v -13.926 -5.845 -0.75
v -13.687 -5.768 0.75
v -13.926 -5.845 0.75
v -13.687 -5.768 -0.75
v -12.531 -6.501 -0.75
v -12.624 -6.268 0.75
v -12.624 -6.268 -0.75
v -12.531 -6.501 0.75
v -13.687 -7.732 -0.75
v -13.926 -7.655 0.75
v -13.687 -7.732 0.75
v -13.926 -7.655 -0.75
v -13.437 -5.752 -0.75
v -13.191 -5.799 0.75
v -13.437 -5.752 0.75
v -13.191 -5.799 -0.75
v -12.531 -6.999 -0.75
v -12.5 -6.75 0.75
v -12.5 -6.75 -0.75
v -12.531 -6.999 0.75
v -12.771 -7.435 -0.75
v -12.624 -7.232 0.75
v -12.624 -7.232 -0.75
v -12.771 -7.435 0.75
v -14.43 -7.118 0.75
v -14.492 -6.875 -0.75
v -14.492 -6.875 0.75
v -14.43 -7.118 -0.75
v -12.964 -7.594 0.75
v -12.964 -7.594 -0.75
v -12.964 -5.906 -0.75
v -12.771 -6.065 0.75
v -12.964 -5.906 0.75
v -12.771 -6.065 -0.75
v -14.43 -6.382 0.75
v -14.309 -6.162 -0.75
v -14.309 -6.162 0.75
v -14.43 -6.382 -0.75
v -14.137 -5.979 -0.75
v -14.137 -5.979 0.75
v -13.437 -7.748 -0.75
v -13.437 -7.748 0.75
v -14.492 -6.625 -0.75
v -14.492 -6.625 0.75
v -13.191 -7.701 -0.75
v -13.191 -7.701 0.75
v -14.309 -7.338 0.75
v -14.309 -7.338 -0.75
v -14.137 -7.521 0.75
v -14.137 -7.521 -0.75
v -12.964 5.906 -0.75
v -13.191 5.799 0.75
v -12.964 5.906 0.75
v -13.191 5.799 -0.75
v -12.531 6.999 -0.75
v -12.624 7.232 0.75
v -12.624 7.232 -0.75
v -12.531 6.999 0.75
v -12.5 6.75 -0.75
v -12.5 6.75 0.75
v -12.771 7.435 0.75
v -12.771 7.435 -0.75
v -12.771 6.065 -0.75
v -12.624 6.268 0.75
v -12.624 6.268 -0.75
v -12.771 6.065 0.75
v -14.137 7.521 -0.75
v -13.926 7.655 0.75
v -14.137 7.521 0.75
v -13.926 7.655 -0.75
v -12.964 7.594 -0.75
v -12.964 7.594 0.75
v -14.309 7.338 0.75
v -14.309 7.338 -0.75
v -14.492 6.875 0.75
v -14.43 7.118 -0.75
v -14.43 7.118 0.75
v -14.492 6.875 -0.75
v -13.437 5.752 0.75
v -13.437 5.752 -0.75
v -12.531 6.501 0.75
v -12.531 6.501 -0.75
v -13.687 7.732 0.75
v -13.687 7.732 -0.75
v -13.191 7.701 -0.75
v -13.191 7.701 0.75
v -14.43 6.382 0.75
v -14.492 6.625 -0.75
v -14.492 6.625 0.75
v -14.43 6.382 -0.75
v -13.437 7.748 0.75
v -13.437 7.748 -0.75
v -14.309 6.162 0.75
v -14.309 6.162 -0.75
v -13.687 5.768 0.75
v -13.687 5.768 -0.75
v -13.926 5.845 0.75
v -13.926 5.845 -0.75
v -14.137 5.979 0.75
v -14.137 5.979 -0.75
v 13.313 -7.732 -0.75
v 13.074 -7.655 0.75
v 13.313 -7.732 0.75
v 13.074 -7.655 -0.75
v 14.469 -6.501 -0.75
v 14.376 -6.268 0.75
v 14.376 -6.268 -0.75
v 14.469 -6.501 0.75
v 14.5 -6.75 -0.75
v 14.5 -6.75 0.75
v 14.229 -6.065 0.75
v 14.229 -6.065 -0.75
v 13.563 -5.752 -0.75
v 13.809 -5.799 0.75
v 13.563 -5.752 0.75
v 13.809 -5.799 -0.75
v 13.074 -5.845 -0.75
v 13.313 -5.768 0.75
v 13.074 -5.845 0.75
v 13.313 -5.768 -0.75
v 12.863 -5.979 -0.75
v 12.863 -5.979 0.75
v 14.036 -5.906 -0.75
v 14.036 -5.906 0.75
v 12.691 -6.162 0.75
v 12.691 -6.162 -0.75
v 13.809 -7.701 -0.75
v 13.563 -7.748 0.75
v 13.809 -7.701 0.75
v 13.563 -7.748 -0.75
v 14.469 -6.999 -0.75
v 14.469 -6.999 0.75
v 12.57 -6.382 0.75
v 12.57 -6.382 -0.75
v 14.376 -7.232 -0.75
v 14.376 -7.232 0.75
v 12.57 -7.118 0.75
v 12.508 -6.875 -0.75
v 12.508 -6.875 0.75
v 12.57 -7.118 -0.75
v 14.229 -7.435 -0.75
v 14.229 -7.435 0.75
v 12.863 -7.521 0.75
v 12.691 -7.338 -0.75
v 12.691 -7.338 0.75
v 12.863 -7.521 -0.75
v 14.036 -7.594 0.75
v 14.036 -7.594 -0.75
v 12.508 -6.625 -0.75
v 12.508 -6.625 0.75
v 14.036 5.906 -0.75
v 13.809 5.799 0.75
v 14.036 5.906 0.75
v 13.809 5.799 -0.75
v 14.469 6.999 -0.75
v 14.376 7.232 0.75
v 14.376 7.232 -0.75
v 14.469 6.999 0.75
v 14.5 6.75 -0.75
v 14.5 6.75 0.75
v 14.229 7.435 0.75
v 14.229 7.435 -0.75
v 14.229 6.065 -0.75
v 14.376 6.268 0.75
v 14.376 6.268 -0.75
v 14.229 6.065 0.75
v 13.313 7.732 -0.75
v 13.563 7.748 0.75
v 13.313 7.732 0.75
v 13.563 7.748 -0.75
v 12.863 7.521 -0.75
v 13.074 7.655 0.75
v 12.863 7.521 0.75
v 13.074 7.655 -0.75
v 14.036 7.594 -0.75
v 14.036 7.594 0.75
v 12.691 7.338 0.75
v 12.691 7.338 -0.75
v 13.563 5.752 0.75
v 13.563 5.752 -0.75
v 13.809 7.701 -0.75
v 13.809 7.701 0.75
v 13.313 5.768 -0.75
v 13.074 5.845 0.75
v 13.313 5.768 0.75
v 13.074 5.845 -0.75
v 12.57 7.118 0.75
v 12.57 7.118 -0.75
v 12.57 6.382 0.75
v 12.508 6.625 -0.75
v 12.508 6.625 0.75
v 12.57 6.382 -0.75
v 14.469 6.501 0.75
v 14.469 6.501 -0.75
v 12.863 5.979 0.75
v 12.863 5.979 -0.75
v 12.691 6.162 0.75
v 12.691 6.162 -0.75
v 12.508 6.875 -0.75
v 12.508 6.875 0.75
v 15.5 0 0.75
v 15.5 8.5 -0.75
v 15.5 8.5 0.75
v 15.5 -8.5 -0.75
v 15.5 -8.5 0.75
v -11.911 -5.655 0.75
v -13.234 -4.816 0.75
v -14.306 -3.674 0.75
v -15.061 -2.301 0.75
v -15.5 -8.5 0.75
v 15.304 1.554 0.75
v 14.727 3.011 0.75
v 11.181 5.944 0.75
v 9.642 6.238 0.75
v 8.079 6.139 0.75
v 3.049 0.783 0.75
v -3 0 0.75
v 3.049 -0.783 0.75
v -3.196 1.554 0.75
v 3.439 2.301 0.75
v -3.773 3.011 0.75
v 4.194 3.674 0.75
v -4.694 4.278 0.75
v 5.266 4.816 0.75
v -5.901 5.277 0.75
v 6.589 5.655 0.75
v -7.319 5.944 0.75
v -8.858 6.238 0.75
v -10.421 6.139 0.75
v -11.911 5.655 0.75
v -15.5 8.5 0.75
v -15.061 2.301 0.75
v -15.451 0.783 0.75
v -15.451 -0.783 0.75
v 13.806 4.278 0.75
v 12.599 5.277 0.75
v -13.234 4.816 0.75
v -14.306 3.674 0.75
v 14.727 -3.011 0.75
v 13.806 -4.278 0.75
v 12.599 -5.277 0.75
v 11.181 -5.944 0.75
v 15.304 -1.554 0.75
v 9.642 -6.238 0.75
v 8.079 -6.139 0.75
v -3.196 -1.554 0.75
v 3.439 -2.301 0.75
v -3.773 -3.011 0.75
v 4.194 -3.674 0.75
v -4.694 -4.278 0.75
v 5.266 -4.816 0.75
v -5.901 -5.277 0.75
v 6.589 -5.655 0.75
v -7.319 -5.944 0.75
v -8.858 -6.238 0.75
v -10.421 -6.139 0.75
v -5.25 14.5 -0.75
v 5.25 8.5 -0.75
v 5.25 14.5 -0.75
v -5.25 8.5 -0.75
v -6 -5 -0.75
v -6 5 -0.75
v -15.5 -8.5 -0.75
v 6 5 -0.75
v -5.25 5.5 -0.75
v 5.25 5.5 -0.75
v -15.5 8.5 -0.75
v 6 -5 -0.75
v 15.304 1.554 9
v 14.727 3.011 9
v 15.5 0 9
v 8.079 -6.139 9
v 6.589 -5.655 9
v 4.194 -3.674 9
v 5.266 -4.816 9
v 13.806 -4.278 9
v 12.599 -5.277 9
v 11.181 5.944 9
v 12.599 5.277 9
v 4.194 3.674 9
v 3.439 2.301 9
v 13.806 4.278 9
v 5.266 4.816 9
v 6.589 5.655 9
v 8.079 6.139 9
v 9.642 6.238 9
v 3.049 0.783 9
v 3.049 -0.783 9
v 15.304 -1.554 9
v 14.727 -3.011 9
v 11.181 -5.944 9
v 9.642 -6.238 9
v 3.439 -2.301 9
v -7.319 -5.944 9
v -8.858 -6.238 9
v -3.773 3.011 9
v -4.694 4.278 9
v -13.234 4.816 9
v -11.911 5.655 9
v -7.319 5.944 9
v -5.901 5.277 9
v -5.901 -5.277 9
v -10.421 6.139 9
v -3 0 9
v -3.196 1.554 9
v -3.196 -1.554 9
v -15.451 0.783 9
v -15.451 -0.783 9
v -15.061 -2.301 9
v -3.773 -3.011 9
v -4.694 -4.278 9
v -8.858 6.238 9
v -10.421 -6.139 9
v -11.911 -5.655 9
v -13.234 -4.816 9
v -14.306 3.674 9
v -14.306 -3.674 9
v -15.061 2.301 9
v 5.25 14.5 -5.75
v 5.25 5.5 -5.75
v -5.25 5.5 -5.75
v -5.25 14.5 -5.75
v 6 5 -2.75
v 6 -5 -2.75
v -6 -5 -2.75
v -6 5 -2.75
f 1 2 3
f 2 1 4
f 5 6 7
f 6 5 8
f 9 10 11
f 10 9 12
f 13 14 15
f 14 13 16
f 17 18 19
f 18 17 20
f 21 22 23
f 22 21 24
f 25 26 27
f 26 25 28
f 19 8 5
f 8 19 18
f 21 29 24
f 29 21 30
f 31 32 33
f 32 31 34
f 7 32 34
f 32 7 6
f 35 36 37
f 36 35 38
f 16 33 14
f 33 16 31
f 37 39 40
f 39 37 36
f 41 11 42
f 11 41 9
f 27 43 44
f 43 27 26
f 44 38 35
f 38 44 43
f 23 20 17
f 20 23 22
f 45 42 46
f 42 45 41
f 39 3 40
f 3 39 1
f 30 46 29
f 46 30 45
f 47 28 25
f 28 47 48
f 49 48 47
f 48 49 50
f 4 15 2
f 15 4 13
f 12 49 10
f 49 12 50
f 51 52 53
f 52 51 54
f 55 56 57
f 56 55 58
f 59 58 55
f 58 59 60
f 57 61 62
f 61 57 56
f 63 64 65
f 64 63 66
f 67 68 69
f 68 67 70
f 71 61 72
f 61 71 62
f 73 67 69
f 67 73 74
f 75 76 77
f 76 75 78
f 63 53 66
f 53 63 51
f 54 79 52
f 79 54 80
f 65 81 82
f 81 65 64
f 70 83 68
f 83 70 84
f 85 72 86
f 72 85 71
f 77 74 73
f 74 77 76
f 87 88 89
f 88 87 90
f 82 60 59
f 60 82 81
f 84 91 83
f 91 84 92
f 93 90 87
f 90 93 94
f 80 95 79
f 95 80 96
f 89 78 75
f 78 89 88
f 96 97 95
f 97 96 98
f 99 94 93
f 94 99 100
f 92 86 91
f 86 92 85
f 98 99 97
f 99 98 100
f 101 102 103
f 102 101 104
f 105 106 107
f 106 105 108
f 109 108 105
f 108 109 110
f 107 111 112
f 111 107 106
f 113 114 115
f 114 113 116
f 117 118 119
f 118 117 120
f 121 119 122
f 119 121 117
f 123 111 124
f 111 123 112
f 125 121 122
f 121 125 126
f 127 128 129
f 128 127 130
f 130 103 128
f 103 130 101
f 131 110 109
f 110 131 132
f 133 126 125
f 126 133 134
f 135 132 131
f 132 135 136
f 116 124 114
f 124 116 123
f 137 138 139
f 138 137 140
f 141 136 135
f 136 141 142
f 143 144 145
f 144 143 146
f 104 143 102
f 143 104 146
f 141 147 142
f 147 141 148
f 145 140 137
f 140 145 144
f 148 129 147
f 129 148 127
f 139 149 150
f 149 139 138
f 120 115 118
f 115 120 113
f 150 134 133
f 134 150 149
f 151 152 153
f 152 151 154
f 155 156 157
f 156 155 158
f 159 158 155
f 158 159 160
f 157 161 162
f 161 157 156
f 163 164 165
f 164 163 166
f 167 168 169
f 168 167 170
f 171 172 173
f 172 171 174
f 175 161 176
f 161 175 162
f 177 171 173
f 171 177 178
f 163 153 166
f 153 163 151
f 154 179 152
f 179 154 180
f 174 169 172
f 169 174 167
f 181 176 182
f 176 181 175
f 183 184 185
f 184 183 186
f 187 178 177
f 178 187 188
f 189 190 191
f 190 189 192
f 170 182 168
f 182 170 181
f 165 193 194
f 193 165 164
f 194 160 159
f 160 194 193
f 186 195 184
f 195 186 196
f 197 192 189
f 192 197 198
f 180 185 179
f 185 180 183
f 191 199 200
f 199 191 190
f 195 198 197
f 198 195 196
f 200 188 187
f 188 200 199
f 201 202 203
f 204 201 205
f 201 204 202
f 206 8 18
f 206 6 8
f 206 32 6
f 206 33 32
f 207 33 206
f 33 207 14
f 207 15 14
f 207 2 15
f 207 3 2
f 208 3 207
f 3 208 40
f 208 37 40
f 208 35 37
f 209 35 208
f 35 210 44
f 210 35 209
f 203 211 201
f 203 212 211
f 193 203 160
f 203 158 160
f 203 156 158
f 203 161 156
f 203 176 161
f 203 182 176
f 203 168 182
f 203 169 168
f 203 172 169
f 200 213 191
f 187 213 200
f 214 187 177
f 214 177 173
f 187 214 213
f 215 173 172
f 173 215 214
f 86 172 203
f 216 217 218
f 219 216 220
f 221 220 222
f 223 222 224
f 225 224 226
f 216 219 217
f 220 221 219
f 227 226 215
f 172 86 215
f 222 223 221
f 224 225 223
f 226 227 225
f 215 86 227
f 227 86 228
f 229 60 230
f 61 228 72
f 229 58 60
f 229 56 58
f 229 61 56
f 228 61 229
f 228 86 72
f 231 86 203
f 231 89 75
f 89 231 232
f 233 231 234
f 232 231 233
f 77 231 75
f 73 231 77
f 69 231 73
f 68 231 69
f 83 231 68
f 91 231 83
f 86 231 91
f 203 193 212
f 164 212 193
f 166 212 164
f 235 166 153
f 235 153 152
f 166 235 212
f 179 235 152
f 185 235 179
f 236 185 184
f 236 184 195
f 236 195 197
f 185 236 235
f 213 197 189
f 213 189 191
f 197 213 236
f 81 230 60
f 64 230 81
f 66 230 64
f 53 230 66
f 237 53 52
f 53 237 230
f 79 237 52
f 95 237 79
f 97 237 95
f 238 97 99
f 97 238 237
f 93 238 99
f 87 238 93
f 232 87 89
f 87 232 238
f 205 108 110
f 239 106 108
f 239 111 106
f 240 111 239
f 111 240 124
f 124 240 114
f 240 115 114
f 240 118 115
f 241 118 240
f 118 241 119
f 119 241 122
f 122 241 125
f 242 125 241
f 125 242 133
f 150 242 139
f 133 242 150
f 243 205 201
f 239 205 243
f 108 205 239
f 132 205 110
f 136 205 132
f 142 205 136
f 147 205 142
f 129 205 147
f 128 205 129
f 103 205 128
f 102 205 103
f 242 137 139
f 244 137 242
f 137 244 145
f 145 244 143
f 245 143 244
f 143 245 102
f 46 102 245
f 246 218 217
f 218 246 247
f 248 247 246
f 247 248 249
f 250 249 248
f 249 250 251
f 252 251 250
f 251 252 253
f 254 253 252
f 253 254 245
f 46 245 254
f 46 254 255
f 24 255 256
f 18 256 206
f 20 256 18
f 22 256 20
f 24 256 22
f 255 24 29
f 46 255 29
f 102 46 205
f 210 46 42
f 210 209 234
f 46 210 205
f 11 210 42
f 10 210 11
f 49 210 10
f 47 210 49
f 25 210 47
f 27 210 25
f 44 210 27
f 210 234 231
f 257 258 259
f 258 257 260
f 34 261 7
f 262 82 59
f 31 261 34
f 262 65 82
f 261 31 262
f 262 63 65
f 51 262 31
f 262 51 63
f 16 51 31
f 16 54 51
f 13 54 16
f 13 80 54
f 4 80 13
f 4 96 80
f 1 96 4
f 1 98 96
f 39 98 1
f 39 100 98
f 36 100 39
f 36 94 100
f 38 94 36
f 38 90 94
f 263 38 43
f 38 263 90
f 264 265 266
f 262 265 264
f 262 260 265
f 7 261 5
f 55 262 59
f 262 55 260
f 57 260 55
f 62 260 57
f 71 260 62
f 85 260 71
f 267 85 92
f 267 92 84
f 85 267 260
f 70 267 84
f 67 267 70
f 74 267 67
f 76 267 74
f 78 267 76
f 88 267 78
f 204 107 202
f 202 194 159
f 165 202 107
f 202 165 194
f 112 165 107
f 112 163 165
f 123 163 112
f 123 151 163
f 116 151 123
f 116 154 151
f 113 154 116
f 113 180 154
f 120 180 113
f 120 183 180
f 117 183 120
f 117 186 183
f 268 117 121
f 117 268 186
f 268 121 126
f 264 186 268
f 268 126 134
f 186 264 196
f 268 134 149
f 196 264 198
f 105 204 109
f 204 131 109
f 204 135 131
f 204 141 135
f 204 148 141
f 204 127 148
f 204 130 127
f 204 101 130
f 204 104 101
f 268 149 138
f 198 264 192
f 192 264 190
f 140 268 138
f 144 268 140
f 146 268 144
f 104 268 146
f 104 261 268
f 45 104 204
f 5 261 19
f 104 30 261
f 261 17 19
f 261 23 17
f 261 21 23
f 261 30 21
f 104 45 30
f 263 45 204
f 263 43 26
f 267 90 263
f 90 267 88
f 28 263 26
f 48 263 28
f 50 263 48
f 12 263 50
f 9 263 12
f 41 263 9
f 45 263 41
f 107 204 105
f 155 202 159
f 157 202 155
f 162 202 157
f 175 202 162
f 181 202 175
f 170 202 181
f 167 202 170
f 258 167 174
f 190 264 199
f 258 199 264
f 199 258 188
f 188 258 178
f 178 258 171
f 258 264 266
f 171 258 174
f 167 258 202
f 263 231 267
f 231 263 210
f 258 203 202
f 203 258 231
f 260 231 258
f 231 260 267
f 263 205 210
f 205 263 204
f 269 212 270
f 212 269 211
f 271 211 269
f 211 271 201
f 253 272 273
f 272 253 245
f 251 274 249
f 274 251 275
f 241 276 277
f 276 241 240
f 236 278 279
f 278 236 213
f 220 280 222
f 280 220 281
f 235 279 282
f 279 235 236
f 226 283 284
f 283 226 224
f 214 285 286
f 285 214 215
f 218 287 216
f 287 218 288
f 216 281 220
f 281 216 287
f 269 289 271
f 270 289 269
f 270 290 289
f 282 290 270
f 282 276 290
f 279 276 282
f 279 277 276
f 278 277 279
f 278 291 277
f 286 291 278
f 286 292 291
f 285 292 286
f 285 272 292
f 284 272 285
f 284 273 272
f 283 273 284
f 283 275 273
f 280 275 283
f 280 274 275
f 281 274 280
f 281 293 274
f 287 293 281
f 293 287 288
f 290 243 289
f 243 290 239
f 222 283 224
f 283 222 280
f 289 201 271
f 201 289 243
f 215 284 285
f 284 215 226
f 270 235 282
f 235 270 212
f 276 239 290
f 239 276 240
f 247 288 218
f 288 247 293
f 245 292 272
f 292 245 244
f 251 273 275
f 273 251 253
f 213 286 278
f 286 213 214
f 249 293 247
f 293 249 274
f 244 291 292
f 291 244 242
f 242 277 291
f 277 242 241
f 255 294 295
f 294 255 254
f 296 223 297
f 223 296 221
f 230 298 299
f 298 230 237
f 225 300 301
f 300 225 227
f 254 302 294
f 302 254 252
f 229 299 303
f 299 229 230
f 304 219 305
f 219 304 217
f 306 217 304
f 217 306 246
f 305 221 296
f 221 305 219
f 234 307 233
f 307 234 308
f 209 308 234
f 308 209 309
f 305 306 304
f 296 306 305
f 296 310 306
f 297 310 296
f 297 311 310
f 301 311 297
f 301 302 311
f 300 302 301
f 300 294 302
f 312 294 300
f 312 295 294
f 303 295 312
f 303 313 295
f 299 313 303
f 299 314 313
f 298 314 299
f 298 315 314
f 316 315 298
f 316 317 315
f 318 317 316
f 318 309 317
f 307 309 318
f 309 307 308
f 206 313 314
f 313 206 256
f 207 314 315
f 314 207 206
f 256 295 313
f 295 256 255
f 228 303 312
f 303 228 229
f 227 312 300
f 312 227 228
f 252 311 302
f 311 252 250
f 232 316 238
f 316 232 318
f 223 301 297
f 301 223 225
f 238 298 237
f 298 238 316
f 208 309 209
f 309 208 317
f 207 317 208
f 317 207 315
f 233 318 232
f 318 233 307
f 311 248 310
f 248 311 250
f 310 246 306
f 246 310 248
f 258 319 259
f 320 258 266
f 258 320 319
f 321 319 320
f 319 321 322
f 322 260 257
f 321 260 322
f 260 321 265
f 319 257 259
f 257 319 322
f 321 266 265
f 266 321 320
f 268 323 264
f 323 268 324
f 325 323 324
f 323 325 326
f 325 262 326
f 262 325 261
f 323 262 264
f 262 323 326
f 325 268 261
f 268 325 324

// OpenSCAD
// NAME: RCW 0001 Ultrasound Sensor
// COLOR: 7
// CATEGORY: Electric

$fn=25;

module rwc_0001(){
    difference(){
        cube([31, 17, 1.5], center=true);

        for(x=[-1, 1]){
            for(y=[-1, 1])
                translate([x*27/2, y*13.5/2, 0])
                cylinder(d=2, h=1.6, center=true);
        }
    }

    for(i=[-1, 1])
        translate([i*-18.5/2, 0, 0])
            cylinder(d=12.5, h=9);

    translate([0, 17/2+1.5, -2.5-0.75])
        cube([10.5, 9, 5], center=true);
    translate([0, 0, -1.75])
        cube([12, 10, 2], center=true);
}

color("lightgray")
rwc_0001();
